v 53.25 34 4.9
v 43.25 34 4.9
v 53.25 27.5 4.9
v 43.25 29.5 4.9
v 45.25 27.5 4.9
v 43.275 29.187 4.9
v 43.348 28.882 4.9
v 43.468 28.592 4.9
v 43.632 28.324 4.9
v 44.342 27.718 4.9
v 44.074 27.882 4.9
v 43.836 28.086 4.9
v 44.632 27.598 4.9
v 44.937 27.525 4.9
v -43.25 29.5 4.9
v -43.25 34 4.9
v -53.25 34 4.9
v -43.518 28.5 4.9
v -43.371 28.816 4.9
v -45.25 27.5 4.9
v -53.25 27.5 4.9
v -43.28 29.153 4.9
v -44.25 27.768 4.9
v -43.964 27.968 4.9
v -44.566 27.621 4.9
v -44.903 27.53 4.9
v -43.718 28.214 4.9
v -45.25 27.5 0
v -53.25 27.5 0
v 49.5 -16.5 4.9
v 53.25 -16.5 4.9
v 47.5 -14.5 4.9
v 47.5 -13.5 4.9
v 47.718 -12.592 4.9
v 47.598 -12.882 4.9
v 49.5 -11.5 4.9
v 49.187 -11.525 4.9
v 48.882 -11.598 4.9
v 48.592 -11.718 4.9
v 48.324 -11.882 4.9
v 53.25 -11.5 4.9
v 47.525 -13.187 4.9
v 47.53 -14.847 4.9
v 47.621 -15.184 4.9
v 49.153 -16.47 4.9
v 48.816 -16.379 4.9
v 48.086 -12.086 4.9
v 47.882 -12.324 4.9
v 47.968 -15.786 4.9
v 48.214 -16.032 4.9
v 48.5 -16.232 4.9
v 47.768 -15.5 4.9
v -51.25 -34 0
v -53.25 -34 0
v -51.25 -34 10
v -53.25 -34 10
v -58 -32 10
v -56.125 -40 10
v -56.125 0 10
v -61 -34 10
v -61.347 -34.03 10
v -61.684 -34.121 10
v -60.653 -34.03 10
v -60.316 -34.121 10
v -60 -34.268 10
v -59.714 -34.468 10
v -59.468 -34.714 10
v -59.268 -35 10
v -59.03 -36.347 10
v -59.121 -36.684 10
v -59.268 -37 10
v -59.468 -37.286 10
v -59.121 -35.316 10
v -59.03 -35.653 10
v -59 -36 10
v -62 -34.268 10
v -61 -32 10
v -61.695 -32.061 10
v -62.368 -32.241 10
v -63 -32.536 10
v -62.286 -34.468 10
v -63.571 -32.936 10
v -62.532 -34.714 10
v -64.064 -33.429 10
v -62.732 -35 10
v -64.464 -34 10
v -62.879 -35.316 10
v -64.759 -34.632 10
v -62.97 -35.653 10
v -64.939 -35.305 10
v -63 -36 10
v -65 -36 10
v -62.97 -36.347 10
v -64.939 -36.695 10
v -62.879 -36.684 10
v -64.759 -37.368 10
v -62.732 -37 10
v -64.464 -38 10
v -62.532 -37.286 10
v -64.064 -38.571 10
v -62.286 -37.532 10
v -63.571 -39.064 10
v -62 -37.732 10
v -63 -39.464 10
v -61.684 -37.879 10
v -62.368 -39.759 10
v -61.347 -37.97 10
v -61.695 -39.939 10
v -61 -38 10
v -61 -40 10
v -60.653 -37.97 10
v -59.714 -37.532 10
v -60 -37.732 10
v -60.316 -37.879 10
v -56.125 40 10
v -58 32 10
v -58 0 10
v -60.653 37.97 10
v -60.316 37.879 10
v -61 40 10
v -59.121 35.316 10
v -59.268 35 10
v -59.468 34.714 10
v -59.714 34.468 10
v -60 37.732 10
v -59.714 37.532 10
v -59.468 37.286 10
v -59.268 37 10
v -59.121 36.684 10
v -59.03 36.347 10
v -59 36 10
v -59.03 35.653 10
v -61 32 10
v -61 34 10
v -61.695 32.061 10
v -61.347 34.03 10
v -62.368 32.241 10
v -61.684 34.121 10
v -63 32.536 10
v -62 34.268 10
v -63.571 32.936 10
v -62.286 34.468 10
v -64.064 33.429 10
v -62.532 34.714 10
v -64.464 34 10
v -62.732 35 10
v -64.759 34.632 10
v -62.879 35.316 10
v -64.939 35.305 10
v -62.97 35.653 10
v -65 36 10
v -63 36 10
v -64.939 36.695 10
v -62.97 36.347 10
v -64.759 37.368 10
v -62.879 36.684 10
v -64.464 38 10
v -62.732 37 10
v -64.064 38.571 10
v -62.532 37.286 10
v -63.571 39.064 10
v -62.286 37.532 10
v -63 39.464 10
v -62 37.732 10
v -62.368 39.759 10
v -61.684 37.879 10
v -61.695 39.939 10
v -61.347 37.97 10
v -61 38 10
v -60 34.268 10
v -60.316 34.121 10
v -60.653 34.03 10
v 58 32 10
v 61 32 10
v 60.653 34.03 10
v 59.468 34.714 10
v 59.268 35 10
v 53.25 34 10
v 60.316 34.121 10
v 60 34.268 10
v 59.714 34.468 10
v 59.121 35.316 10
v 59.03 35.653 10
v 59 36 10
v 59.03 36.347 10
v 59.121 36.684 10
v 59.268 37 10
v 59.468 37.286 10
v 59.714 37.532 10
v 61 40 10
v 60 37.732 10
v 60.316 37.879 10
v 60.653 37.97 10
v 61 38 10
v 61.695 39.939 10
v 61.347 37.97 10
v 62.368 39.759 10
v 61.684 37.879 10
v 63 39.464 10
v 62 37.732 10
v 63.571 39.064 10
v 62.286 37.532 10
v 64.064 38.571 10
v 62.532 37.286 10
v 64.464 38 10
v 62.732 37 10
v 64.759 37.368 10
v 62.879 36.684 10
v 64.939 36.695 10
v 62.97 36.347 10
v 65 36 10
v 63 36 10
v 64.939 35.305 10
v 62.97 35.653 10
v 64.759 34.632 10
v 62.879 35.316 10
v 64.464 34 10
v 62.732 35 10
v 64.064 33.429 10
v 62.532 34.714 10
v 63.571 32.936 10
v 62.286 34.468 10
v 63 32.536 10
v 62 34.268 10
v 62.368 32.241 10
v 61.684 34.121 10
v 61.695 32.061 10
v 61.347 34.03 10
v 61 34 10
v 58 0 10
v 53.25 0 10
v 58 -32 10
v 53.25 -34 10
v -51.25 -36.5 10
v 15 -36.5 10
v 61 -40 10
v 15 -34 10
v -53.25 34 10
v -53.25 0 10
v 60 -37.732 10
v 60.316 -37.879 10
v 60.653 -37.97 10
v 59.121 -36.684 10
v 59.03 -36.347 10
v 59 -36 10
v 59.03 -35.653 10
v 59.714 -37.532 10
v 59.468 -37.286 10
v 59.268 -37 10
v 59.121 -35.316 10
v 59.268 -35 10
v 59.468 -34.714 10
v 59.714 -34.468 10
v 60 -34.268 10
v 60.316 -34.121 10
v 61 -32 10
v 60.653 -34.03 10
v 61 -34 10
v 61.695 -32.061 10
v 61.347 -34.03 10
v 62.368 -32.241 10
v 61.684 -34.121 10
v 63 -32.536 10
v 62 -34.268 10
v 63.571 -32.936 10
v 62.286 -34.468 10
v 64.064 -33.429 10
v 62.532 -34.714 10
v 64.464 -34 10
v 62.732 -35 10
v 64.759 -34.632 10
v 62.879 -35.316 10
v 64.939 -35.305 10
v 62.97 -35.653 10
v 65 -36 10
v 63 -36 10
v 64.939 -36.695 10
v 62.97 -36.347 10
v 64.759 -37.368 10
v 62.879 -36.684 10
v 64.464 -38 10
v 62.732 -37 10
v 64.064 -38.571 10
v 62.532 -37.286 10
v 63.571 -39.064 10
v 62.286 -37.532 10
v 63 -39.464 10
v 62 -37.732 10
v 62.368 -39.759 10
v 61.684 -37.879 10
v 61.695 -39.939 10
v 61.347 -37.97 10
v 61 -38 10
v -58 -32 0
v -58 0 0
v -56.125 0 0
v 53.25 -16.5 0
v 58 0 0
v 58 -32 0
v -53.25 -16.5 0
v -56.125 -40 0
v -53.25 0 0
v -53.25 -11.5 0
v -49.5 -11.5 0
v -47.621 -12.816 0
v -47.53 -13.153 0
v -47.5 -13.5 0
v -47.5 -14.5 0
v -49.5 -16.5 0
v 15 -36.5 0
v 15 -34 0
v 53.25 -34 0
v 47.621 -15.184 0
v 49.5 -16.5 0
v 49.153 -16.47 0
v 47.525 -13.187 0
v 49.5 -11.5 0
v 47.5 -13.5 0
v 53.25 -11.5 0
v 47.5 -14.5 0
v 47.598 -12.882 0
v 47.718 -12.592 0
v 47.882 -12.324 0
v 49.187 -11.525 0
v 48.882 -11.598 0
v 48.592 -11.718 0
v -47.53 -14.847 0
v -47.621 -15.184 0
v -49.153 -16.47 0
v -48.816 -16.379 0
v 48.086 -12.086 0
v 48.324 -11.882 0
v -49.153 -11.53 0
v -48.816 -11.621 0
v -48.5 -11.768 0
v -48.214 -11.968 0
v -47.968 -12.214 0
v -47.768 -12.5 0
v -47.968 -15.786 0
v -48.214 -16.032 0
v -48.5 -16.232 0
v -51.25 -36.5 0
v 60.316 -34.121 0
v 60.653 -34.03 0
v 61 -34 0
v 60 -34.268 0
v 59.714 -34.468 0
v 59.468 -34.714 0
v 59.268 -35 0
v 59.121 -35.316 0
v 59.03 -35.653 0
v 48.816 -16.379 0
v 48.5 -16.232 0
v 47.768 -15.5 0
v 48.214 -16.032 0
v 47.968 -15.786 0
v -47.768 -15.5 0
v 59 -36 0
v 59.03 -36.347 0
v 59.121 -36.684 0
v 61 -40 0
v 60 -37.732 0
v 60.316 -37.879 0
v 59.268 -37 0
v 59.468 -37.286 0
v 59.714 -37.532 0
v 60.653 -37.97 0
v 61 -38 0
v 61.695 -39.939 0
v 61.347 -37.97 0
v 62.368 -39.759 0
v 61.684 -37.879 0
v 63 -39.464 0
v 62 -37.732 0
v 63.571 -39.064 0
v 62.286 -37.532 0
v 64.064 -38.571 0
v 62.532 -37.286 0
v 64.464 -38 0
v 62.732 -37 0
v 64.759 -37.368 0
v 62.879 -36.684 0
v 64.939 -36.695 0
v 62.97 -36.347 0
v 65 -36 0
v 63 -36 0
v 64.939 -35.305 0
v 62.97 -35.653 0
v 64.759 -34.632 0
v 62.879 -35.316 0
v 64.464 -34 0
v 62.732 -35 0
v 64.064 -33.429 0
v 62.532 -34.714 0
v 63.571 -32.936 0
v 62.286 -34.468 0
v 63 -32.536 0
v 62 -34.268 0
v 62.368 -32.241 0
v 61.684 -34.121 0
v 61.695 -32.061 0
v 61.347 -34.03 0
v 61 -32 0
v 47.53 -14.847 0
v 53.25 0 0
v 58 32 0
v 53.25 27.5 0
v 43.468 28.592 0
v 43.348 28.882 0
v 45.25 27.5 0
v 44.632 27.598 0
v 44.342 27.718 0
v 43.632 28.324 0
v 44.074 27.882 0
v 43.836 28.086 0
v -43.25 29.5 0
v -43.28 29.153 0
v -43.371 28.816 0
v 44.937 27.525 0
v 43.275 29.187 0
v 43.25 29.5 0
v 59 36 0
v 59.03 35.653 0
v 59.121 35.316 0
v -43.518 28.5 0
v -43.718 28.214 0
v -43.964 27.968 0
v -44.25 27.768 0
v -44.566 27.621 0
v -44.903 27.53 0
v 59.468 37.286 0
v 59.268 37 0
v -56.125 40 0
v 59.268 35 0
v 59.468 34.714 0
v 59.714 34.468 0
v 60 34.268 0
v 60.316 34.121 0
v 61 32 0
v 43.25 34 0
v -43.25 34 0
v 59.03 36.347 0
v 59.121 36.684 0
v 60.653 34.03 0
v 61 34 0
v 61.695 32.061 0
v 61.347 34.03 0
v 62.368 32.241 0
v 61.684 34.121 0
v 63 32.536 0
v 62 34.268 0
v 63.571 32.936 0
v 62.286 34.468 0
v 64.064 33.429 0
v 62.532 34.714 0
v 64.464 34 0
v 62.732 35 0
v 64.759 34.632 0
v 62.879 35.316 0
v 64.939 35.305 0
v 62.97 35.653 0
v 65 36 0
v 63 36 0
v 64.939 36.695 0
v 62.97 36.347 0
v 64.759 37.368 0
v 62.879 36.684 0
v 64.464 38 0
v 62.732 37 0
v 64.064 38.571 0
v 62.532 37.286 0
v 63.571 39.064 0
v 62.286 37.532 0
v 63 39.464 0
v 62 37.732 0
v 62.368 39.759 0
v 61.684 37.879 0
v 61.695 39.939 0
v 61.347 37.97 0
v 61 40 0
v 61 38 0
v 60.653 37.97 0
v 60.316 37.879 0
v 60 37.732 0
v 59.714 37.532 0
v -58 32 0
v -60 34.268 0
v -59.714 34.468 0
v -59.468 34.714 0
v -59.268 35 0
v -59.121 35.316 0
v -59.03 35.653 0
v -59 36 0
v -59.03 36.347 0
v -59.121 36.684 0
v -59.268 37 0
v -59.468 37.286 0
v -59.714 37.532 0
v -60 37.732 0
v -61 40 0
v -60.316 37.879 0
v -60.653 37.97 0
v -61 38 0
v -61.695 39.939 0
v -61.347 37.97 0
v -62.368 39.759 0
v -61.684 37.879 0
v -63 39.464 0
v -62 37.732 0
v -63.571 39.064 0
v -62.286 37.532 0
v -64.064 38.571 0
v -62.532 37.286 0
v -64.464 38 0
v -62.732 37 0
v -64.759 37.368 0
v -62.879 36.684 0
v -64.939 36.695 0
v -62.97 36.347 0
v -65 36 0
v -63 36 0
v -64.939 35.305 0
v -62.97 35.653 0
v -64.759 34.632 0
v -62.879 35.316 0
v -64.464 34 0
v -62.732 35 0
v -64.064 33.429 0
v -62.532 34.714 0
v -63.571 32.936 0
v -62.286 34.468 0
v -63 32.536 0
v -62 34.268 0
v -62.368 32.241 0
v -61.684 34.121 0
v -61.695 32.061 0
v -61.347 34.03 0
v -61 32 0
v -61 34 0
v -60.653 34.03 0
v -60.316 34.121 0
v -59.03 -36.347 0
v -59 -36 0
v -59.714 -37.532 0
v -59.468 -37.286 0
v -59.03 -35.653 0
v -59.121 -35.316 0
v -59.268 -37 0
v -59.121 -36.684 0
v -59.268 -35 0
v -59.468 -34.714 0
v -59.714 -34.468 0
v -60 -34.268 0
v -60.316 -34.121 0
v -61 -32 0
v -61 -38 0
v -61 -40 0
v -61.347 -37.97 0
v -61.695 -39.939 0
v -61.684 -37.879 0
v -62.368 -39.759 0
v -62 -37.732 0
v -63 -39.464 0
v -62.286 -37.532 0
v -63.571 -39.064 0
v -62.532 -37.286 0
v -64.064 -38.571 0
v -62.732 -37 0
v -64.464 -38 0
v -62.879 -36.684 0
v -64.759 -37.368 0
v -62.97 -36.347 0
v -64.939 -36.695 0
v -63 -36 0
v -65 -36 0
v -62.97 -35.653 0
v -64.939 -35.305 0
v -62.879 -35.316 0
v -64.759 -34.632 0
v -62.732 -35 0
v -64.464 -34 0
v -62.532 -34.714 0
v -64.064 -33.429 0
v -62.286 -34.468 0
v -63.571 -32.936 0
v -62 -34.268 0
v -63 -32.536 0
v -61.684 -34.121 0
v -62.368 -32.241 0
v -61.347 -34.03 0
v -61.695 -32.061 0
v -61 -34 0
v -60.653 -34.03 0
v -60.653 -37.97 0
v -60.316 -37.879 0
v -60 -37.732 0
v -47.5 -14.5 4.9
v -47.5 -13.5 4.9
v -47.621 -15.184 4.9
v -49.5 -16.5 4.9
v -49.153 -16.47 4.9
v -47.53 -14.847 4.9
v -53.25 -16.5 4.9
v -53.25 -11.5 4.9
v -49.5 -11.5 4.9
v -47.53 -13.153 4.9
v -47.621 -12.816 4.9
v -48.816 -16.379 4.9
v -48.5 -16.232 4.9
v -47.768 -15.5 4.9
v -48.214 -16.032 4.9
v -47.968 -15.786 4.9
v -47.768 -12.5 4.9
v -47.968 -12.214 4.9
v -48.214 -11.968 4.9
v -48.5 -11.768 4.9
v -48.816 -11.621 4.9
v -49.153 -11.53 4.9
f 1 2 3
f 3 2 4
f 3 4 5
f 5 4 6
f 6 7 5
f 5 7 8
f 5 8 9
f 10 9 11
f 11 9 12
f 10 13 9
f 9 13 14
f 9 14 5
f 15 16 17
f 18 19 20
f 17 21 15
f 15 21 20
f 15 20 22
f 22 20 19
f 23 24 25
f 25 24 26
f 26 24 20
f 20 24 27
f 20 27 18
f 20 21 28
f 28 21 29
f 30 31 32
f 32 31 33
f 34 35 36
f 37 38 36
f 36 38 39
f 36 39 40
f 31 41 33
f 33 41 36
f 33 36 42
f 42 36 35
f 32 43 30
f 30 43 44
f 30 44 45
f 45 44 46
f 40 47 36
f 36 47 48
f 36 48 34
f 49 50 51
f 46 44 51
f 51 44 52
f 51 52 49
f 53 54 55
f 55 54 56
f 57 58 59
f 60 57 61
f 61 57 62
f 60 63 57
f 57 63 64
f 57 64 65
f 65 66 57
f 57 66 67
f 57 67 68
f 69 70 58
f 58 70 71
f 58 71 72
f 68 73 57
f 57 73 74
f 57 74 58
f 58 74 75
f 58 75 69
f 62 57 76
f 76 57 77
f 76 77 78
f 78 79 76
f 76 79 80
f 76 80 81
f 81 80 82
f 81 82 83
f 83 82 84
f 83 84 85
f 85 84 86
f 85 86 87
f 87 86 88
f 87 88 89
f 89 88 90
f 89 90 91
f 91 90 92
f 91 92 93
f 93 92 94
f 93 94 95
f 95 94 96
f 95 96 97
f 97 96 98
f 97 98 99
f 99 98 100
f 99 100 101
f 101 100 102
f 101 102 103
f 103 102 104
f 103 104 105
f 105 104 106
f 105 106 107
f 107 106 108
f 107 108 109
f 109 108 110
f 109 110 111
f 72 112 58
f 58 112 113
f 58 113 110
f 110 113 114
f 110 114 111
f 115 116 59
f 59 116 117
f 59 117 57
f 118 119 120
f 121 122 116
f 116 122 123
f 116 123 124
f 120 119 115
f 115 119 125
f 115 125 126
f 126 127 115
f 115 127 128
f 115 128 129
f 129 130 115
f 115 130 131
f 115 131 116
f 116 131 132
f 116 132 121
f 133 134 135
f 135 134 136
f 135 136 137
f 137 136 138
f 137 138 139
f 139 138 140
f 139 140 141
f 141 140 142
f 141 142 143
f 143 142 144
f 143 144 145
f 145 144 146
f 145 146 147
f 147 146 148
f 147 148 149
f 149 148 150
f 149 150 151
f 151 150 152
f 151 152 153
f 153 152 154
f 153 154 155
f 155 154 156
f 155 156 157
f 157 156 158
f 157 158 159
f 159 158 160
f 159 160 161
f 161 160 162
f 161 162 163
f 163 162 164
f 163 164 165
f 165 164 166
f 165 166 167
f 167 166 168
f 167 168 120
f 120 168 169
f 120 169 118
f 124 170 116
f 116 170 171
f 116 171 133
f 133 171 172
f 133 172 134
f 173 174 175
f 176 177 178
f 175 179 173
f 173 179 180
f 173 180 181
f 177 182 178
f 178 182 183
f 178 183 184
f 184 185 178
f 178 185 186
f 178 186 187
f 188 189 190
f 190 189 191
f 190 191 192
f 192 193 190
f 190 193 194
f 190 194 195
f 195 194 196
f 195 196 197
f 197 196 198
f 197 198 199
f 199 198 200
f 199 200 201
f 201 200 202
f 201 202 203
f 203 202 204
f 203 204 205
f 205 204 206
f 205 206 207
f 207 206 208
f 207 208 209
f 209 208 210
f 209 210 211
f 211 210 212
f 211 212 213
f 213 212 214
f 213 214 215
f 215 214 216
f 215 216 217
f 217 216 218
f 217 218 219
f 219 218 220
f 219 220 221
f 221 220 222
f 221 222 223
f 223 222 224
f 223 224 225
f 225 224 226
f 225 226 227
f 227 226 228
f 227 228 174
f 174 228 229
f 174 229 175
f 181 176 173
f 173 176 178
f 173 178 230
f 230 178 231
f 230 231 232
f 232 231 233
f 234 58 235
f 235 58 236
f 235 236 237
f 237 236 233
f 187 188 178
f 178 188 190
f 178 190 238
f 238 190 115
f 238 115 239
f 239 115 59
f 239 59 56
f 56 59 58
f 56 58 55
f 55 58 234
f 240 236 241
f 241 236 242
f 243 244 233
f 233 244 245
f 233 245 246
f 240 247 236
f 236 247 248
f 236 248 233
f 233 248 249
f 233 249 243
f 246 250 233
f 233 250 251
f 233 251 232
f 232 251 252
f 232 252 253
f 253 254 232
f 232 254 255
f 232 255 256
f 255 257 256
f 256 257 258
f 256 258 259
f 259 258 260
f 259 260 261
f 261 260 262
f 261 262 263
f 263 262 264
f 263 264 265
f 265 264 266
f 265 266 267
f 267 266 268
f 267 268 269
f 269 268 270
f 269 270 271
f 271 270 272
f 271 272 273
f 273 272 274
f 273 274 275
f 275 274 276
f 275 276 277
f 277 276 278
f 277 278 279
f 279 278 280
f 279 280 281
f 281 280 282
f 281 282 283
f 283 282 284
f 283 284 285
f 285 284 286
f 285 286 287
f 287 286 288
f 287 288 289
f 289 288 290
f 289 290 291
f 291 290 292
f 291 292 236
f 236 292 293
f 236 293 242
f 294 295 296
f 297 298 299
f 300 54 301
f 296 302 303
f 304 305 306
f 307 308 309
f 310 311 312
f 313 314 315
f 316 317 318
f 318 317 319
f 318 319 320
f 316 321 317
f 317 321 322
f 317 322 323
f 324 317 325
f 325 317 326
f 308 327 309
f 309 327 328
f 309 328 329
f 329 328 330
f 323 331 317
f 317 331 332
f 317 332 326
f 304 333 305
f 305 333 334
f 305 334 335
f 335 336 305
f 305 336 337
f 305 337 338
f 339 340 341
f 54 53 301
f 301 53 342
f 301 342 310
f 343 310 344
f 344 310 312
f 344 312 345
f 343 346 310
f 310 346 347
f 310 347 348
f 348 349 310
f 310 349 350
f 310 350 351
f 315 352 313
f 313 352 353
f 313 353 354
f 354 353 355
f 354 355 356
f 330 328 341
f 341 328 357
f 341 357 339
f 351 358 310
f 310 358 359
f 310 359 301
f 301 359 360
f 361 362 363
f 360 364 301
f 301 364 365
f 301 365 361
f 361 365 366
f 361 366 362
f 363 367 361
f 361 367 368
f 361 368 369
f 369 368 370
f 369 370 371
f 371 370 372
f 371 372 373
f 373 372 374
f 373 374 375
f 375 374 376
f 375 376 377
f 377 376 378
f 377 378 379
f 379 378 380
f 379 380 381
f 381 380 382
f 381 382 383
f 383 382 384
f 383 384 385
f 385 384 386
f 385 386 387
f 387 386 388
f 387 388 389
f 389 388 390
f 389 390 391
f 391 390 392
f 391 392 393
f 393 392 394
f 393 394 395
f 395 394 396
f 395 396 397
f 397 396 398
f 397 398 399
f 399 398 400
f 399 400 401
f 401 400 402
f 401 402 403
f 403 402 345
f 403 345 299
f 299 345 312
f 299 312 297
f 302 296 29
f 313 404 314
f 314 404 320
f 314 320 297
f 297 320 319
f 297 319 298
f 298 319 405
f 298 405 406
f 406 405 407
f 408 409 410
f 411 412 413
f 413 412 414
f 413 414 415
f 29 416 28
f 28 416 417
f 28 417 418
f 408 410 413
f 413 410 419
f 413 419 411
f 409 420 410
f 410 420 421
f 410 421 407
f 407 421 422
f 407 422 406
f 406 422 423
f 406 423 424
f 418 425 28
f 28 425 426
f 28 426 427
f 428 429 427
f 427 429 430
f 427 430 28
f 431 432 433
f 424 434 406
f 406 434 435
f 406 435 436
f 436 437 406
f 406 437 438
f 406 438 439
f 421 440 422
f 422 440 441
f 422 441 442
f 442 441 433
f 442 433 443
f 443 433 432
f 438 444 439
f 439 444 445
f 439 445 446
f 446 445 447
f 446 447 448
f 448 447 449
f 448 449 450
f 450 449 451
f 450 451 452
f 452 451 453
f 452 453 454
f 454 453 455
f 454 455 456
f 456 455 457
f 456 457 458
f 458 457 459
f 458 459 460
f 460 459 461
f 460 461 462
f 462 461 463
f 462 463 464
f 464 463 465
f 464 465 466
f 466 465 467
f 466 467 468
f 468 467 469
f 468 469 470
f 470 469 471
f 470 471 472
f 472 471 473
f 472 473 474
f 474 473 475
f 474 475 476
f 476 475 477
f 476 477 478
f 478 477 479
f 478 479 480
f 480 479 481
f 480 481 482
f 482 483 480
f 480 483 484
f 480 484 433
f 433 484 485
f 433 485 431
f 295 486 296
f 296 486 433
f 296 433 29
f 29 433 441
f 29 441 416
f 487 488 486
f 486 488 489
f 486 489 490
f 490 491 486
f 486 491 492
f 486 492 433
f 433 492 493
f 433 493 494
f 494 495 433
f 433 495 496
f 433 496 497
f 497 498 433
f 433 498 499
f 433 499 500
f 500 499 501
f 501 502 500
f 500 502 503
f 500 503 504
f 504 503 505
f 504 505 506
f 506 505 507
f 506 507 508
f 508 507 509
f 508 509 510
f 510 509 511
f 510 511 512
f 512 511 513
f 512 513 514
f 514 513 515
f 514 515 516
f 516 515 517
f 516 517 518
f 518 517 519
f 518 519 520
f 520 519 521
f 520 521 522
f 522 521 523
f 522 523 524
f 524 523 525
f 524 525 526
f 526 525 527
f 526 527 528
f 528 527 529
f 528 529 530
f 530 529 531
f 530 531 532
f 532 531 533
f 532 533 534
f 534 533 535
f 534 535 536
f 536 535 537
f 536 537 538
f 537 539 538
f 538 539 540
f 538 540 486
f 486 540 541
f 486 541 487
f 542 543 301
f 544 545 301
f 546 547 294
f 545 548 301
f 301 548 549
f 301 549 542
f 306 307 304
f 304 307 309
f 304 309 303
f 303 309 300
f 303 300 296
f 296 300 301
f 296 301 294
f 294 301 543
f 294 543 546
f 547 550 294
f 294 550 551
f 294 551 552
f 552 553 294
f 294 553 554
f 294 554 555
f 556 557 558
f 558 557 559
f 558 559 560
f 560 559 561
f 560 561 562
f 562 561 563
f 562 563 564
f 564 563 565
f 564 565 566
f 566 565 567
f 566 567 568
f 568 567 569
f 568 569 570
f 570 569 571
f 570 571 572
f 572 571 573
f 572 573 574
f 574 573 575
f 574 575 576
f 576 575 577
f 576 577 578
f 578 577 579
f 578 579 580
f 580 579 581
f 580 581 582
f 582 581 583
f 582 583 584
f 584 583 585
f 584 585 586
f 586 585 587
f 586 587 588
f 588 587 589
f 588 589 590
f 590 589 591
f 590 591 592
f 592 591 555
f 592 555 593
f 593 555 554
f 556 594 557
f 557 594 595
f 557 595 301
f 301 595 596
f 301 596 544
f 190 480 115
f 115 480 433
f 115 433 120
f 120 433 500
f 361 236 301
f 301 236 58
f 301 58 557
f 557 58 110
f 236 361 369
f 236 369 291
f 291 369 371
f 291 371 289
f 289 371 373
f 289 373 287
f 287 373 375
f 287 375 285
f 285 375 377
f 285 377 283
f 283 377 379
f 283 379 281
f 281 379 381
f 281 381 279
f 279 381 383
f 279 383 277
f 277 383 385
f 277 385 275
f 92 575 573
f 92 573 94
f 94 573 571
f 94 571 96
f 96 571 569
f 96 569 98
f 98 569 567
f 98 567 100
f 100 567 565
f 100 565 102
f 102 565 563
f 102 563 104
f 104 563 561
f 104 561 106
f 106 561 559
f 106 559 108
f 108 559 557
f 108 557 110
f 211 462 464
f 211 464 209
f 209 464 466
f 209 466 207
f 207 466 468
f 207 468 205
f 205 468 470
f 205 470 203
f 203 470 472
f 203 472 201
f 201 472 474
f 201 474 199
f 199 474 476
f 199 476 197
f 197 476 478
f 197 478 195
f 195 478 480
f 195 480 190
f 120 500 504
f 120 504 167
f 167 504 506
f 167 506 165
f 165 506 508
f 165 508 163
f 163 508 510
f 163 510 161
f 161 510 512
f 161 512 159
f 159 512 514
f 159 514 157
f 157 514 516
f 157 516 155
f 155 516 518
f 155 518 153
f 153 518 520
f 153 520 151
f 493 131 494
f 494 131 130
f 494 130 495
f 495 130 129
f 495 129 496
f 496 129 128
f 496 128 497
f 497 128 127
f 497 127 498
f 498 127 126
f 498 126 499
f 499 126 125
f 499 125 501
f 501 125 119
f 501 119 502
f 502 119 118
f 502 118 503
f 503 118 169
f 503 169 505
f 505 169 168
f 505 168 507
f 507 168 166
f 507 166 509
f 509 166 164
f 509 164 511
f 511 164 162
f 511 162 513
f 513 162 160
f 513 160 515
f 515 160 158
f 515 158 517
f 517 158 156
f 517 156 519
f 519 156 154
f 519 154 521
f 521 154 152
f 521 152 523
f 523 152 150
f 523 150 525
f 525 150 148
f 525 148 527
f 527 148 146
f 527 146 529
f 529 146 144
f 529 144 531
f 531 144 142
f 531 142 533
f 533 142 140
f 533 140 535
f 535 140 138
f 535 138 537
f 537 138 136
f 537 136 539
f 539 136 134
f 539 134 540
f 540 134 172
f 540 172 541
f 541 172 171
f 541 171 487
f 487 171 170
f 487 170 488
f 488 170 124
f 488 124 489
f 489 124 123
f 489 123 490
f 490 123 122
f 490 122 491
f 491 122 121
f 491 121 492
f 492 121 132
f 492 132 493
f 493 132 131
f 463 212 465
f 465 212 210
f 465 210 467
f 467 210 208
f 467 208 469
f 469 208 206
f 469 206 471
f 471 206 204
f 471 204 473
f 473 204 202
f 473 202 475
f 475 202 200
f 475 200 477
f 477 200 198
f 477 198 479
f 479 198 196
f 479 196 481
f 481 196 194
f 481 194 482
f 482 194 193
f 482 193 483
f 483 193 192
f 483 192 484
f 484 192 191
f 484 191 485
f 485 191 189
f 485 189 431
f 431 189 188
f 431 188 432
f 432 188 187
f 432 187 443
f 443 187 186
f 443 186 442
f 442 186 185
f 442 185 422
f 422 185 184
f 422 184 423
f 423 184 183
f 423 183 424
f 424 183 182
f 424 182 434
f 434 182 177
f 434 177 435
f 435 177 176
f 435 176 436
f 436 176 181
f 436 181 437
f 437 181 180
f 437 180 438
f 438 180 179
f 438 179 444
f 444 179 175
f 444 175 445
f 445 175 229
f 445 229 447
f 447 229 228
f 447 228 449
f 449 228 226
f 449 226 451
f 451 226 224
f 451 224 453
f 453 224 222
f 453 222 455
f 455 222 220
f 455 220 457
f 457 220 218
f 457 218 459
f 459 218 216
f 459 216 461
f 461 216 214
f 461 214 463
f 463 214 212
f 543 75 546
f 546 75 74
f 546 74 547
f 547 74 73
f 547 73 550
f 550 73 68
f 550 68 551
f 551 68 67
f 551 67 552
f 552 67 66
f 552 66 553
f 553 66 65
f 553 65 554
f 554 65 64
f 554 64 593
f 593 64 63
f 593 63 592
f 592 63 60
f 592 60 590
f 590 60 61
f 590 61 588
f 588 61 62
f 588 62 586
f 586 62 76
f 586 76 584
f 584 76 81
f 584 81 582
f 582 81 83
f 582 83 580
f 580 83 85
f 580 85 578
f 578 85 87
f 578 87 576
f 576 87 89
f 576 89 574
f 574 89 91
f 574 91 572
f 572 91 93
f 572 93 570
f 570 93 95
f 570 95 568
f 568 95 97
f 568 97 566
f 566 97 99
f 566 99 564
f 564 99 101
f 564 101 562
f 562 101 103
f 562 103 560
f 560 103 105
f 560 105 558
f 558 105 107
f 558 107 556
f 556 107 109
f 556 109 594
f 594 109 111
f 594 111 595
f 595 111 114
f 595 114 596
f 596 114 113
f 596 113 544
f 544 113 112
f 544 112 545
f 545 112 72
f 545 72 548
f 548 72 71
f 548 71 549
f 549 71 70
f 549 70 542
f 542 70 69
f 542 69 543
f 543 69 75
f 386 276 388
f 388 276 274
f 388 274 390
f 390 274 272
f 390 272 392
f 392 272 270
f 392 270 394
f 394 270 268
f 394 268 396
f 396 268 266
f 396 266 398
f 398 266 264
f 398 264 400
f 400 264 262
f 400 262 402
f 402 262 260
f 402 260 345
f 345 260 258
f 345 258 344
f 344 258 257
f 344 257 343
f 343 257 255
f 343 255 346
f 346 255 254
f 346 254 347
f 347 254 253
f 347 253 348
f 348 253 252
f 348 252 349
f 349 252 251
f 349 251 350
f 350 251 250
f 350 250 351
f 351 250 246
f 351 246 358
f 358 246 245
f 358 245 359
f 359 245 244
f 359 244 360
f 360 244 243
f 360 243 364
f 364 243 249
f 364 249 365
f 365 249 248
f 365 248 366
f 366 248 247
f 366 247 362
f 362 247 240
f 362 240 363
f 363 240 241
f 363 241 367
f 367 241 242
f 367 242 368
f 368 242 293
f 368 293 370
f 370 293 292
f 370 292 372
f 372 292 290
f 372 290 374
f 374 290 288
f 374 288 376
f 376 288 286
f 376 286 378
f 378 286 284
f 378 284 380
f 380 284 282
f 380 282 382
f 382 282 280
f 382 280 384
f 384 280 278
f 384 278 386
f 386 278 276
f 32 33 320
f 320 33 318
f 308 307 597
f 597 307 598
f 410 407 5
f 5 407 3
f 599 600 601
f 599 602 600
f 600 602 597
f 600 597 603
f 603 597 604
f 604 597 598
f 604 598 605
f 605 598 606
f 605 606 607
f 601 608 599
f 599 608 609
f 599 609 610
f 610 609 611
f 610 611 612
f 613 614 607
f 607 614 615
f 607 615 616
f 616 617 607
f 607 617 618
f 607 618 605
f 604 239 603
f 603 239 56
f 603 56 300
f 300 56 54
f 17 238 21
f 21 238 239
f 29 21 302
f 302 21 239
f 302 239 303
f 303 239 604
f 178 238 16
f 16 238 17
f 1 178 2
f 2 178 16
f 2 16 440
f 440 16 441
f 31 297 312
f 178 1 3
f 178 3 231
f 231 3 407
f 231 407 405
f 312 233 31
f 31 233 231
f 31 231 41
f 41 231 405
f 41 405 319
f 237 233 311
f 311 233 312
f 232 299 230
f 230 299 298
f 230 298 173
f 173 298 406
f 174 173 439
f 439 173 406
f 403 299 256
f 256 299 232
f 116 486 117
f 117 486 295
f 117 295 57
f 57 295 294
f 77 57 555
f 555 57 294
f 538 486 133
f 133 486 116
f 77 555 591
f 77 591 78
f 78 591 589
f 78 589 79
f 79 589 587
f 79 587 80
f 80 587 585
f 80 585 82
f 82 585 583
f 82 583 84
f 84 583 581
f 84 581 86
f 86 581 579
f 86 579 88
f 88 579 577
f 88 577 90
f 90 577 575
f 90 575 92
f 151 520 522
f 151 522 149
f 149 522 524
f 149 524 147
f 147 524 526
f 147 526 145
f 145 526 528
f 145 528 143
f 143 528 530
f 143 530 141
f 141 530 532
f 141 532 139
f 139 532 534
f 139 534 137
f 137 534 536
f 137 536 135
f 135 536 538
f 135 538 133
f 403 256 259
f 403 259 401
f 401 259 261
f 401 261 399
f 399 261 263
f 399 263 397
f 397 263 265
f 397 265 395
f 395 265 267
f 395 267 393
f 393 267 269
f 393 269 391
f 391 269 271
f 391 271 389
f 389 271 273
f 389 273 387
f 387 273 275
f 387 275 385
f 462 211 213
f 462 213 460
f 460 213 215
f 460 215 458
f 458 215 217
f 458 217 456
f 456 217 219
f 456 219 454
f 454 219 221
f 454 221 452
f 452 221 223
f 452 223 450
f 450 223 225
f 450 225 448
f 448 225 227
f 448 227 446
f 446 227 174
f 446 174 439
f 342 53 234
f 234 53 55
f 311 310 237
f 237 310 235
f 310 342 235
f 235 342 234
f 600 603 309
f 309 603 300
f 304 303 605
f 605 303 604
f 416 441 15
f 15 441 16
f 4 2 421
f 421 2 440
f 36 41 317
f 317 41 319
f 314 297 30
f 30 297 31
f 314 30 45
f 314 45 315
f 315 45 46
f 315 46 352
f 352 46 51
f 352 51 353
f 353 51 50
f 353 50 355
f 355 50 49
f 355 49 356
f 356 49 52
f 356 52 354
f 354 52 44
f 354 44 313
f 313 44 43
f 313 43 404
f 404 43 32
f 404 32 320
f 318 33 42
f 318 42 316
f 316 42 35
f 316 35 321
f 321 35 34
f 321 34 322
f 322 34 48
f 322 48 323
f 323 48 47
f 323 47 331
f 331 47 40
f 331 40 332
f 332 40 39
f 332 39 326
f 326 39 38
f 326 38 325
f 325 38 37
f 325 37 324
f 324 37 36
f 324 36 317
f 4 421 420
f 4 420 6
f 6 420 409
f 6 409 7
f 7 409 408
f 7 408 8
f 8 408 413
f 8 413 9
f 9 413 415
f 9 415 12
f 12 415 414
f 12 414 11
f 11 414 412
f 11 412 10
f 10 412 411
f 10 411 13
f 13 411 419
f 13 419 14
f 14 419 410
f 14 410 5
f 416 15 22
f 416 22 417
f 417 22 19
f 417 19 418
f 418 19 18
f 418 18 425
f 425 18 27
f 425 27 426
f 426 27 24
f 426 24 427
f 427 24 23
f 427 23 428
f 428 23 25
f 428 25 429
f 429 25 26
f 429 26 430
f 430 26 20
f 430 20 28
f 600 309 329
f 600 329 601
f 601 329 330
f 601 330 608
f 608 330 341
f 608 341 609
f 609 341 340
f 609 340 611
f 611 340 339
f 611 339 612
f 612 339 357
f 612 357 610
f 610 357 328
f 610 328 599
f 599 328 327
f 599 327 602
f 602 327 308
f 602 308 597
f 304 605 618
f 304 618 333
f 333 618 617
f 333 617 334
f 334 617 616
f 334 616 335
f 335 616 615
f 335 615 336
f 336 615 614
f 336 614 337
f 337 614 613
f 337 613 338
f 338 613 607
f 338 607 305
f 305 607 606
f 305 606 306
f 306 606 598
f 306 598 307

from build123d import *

# Parameters (mm, degrees)
SKETCH1_W             = 130
SKETCH1_H             = 80
BOSS_EXTRUDE1_DEPTH   = 10
FILLET1_R             = 4
F_4_0MM_DOWEL_HOLE1_D = 4
MIRROR2_COPY_1_D      = 4
SKETCH8_W             = 95
SKETCH8_H             = 55
CUT_EXTRUDE4_DEPTH    = 10
SKETCH4_W             = 106.5
SKETCH4_H             = 68
CUT_EXTRUDE1_DEPTH    = 5.1
SKETCH6_W             = 7
SKETCH6_H             = 64
CUT_EXTRUDE3_DEPTH    = 10
FILLET3_R             = 4
SKETCH10_W            = 66.25
SKETCH10_H            = 2.5
CUT_EXTRUDE6_DEPTH    = 10
SKETCH12_W            = 5.983903777
SKETCH12_H            = 17.5
SKETCH12_W_2          = 5.75
SKETCH12_H_2          = 39
CUT_EXTRUDE7_DEPTH    = 10
SKETCH13_W            = 86.5
SKETCH13_H            = 6.5
CUT_EXTRUDE8_DEPTH    = 10
SKETCH14_W            = 5.75
SKETCH14_H            = 39
CUT_EXTRUDE9_DEPTH    = 10
SKETCH15_W            = 5.75
SKETCH15_H            = 17.5
CUT_EXTRUDE10_DEPTH   = 10
SKETCH16_W            = 94.766096223
SKETCH16_H            = 6.5
CUT_EXTRUDE11_DEPTH   = 10
FILLET4_R             = 2


with BuildPart() as part:
    # Sketch1 → Boss-Extrude1 (new body)
    with BuildSketch(Plane.XY):
        Rectangle(SKETCH1_W, SKETCH1_H)
    extrude(amount=BOSS_EXTRUDE1_DEPTH)

    # Fillet1
    fillet1_edges = [part.edges().sort_by_distance(p)[0] for p in [
        (65, -40, 5),
        (-65, -40, 5),
        (-65, 40, 5),
        (65, 40, 5),
    ]]
    fillet(fillet1_edges, radius=FILLET1_R)

    # Ø4.0mm Dowel Hole1 (through all)
    with Locations(Plane.XY.offset(10)):
        with Locations((-61, 36)):
            f_4_0mm_dowel_hole1 = Hole(F_4_0MM_DOWEL_HOLE1_D / 2)

    # Mirror1: Ø4.0mm Dowel Hole1 across plane
    add(f_4_0mm_dowel_hole1.mirror(Plane(origin=(0, 0, 0), x_dir=(0, 0, 1), z_dir=(1, 0, 0))), mode=Mode.SUBTRACT)

    # Mirror2: Ø4.0mm Dowel Hole1 across plane
    add(f_4_0mm_dowel_hole1.mirror(Plane.ZX), mode=Mode.SUBTRACT)

    # Mirror2 copy 1 (through all)
    with Locations(Plane(origin=(0, 0, 10), x_dir=(-1, 0, 0), z_dir=(0, 0, 1))):
        with Locations((-61, 36)):
            Hole(MIRROR2_COPY_1_D / 2)

    # Sketch8 → Cut-Extrude4 (cut)
    with BuildSketch(Plane.XY.offset(10)):
        Rectangle(SKETCH8_W, SKETCH8_H)
    extrude(amount=-CUT_EXTRUDE4_DEPTH, mode=Mode.SUBTRACT)

    # Sketch4 → Cut-Extrude1 (cut)
    with BuildSketch(Plane.XY.offset(10)):
        Rectangle(SKETCH4_W, SKETCH4_H)
    extrude(amount=-CUT_EXTRUDE1_DEPTH, mode=Mode.SUBTRACT)

    # Sketch6 → Cut-Extrude3 (cut)
    with BuildSketch(Plane.XY.offset(10)):
        with Locations((61.5, 0)):
            Rectangle(SKETCH6_W, SKETCH6_H)
    cut_extrude3 = extrude(amount=-CUT_EXTRUDE3_DEPTH, mode=Mode.SUBTRACT)

    # Mirror6: Cut-Extrude3 across plane
    add(cut_extrude3.mirror(Plane(origin=(0, 0, 0), x_dir=(0, 0, 1), z_dir=(1, 0, 0))), mode=Mode.SUBTRACT)

    # Fillet3
    fillet3_edges = [part.edges().sort_by_distance(p)[0] for p in [
        (65, -32, 5),
        (65, 32, 5),
        (-65, -32, 5),
        (-65, 32, 5),
    ]]
    fillet(fillet3_edges, radius=FILLET3_R - 0.0001)  # a hair under: the kernel refuses the full size

    # Sketch10 → Cut-Extrude6 (cut)
    with BuildSketch(Plane.XY.offset(10)):
        with Locations((-18.125, -35.25)):
            Rectangle(SKETCH10_W, SKETCH10_H)
    extrude(amount=-CUT_EXTRUDE6_DEPTH, mode=Mode.SUBTRACT)

    # Sketch12 → Cut-Extrude7 (cut)
    with BuildSketch(Plane.XY.offset(4.9)):
        with Locations((-50.258048112, -25.25)):
            Rectangle(SKETCH12_W, SKETCH12_H)
        with Locations((-50.375, 8)):
            Rectangle(SKETCH12_W_2, SKETCH12_H_2)
    extrude(amount=-CUT_EXTRUDE7_DEPTH, mode=Mode.SUBTRACT)

    # Sketch13 → Cut-Extrude8 (cut)
    with BuildSketch(Plane.XY.offset(4.9)):
        with Locations((0, 30.75)):
            Rectangle(SKETCH13_W, SKETCH13_H)
    extrude(amount=-CUT_EXTRUDE8_DEPTH, mode=Mode.SUBTRACT)

    # Sketch14 → Cut-Extrude9 (cut)
    with BuildSketch(Plane.XY.offset(4.9)):
        with Locations((50.375, 8)):
            Rectangle(SKETCH14_W, SKETCH14_H)
    extrude(amount=-CUT_EXTRUDE9_DEPTH, mode=Mode.SUBTRACT)

    # Sketch15 → Cut-Extrude10 (cut)
    with BuildSketch(Plane.XY.offset(4.9)):
        with Locations((50.375, -25.25)):
            Rectangle(SKETCH15_W, SKETCH15_H)
    extrude(amount=-CUT_EXTRUDE10_DEPTH, mode=Mode.SUBTRACT)

    # Sketch16 → Cut-Extrude11 (cut)
    with BuildSketch(Plane.XY.offset(4.9)):
        with Locations((0.116951888, -30.75)):
            Rectangle(SKETCH16_W, SKETCH16_H)
    extrude(amount=-CUT_EXTRUDE11_DEPTH, mode=Mode.SUBTRACT)

    # Fillet4
    fillet4_edges = [part.edges().sort_by_distance(p)[0] for p in [
        (-47.5, -16.5, 2.45),
        (-47.5, -11.5, 2.45),
        (43.25, 27.5, 2.45),
        (-43.25, 27.5, 2.45),
        (47.5, -11.5, 2.45),
        (47.5, -16.5, 2.45),
    ]]
    fillet(fillet4_edges, radius=FILLET4_R)


solid = part.part
